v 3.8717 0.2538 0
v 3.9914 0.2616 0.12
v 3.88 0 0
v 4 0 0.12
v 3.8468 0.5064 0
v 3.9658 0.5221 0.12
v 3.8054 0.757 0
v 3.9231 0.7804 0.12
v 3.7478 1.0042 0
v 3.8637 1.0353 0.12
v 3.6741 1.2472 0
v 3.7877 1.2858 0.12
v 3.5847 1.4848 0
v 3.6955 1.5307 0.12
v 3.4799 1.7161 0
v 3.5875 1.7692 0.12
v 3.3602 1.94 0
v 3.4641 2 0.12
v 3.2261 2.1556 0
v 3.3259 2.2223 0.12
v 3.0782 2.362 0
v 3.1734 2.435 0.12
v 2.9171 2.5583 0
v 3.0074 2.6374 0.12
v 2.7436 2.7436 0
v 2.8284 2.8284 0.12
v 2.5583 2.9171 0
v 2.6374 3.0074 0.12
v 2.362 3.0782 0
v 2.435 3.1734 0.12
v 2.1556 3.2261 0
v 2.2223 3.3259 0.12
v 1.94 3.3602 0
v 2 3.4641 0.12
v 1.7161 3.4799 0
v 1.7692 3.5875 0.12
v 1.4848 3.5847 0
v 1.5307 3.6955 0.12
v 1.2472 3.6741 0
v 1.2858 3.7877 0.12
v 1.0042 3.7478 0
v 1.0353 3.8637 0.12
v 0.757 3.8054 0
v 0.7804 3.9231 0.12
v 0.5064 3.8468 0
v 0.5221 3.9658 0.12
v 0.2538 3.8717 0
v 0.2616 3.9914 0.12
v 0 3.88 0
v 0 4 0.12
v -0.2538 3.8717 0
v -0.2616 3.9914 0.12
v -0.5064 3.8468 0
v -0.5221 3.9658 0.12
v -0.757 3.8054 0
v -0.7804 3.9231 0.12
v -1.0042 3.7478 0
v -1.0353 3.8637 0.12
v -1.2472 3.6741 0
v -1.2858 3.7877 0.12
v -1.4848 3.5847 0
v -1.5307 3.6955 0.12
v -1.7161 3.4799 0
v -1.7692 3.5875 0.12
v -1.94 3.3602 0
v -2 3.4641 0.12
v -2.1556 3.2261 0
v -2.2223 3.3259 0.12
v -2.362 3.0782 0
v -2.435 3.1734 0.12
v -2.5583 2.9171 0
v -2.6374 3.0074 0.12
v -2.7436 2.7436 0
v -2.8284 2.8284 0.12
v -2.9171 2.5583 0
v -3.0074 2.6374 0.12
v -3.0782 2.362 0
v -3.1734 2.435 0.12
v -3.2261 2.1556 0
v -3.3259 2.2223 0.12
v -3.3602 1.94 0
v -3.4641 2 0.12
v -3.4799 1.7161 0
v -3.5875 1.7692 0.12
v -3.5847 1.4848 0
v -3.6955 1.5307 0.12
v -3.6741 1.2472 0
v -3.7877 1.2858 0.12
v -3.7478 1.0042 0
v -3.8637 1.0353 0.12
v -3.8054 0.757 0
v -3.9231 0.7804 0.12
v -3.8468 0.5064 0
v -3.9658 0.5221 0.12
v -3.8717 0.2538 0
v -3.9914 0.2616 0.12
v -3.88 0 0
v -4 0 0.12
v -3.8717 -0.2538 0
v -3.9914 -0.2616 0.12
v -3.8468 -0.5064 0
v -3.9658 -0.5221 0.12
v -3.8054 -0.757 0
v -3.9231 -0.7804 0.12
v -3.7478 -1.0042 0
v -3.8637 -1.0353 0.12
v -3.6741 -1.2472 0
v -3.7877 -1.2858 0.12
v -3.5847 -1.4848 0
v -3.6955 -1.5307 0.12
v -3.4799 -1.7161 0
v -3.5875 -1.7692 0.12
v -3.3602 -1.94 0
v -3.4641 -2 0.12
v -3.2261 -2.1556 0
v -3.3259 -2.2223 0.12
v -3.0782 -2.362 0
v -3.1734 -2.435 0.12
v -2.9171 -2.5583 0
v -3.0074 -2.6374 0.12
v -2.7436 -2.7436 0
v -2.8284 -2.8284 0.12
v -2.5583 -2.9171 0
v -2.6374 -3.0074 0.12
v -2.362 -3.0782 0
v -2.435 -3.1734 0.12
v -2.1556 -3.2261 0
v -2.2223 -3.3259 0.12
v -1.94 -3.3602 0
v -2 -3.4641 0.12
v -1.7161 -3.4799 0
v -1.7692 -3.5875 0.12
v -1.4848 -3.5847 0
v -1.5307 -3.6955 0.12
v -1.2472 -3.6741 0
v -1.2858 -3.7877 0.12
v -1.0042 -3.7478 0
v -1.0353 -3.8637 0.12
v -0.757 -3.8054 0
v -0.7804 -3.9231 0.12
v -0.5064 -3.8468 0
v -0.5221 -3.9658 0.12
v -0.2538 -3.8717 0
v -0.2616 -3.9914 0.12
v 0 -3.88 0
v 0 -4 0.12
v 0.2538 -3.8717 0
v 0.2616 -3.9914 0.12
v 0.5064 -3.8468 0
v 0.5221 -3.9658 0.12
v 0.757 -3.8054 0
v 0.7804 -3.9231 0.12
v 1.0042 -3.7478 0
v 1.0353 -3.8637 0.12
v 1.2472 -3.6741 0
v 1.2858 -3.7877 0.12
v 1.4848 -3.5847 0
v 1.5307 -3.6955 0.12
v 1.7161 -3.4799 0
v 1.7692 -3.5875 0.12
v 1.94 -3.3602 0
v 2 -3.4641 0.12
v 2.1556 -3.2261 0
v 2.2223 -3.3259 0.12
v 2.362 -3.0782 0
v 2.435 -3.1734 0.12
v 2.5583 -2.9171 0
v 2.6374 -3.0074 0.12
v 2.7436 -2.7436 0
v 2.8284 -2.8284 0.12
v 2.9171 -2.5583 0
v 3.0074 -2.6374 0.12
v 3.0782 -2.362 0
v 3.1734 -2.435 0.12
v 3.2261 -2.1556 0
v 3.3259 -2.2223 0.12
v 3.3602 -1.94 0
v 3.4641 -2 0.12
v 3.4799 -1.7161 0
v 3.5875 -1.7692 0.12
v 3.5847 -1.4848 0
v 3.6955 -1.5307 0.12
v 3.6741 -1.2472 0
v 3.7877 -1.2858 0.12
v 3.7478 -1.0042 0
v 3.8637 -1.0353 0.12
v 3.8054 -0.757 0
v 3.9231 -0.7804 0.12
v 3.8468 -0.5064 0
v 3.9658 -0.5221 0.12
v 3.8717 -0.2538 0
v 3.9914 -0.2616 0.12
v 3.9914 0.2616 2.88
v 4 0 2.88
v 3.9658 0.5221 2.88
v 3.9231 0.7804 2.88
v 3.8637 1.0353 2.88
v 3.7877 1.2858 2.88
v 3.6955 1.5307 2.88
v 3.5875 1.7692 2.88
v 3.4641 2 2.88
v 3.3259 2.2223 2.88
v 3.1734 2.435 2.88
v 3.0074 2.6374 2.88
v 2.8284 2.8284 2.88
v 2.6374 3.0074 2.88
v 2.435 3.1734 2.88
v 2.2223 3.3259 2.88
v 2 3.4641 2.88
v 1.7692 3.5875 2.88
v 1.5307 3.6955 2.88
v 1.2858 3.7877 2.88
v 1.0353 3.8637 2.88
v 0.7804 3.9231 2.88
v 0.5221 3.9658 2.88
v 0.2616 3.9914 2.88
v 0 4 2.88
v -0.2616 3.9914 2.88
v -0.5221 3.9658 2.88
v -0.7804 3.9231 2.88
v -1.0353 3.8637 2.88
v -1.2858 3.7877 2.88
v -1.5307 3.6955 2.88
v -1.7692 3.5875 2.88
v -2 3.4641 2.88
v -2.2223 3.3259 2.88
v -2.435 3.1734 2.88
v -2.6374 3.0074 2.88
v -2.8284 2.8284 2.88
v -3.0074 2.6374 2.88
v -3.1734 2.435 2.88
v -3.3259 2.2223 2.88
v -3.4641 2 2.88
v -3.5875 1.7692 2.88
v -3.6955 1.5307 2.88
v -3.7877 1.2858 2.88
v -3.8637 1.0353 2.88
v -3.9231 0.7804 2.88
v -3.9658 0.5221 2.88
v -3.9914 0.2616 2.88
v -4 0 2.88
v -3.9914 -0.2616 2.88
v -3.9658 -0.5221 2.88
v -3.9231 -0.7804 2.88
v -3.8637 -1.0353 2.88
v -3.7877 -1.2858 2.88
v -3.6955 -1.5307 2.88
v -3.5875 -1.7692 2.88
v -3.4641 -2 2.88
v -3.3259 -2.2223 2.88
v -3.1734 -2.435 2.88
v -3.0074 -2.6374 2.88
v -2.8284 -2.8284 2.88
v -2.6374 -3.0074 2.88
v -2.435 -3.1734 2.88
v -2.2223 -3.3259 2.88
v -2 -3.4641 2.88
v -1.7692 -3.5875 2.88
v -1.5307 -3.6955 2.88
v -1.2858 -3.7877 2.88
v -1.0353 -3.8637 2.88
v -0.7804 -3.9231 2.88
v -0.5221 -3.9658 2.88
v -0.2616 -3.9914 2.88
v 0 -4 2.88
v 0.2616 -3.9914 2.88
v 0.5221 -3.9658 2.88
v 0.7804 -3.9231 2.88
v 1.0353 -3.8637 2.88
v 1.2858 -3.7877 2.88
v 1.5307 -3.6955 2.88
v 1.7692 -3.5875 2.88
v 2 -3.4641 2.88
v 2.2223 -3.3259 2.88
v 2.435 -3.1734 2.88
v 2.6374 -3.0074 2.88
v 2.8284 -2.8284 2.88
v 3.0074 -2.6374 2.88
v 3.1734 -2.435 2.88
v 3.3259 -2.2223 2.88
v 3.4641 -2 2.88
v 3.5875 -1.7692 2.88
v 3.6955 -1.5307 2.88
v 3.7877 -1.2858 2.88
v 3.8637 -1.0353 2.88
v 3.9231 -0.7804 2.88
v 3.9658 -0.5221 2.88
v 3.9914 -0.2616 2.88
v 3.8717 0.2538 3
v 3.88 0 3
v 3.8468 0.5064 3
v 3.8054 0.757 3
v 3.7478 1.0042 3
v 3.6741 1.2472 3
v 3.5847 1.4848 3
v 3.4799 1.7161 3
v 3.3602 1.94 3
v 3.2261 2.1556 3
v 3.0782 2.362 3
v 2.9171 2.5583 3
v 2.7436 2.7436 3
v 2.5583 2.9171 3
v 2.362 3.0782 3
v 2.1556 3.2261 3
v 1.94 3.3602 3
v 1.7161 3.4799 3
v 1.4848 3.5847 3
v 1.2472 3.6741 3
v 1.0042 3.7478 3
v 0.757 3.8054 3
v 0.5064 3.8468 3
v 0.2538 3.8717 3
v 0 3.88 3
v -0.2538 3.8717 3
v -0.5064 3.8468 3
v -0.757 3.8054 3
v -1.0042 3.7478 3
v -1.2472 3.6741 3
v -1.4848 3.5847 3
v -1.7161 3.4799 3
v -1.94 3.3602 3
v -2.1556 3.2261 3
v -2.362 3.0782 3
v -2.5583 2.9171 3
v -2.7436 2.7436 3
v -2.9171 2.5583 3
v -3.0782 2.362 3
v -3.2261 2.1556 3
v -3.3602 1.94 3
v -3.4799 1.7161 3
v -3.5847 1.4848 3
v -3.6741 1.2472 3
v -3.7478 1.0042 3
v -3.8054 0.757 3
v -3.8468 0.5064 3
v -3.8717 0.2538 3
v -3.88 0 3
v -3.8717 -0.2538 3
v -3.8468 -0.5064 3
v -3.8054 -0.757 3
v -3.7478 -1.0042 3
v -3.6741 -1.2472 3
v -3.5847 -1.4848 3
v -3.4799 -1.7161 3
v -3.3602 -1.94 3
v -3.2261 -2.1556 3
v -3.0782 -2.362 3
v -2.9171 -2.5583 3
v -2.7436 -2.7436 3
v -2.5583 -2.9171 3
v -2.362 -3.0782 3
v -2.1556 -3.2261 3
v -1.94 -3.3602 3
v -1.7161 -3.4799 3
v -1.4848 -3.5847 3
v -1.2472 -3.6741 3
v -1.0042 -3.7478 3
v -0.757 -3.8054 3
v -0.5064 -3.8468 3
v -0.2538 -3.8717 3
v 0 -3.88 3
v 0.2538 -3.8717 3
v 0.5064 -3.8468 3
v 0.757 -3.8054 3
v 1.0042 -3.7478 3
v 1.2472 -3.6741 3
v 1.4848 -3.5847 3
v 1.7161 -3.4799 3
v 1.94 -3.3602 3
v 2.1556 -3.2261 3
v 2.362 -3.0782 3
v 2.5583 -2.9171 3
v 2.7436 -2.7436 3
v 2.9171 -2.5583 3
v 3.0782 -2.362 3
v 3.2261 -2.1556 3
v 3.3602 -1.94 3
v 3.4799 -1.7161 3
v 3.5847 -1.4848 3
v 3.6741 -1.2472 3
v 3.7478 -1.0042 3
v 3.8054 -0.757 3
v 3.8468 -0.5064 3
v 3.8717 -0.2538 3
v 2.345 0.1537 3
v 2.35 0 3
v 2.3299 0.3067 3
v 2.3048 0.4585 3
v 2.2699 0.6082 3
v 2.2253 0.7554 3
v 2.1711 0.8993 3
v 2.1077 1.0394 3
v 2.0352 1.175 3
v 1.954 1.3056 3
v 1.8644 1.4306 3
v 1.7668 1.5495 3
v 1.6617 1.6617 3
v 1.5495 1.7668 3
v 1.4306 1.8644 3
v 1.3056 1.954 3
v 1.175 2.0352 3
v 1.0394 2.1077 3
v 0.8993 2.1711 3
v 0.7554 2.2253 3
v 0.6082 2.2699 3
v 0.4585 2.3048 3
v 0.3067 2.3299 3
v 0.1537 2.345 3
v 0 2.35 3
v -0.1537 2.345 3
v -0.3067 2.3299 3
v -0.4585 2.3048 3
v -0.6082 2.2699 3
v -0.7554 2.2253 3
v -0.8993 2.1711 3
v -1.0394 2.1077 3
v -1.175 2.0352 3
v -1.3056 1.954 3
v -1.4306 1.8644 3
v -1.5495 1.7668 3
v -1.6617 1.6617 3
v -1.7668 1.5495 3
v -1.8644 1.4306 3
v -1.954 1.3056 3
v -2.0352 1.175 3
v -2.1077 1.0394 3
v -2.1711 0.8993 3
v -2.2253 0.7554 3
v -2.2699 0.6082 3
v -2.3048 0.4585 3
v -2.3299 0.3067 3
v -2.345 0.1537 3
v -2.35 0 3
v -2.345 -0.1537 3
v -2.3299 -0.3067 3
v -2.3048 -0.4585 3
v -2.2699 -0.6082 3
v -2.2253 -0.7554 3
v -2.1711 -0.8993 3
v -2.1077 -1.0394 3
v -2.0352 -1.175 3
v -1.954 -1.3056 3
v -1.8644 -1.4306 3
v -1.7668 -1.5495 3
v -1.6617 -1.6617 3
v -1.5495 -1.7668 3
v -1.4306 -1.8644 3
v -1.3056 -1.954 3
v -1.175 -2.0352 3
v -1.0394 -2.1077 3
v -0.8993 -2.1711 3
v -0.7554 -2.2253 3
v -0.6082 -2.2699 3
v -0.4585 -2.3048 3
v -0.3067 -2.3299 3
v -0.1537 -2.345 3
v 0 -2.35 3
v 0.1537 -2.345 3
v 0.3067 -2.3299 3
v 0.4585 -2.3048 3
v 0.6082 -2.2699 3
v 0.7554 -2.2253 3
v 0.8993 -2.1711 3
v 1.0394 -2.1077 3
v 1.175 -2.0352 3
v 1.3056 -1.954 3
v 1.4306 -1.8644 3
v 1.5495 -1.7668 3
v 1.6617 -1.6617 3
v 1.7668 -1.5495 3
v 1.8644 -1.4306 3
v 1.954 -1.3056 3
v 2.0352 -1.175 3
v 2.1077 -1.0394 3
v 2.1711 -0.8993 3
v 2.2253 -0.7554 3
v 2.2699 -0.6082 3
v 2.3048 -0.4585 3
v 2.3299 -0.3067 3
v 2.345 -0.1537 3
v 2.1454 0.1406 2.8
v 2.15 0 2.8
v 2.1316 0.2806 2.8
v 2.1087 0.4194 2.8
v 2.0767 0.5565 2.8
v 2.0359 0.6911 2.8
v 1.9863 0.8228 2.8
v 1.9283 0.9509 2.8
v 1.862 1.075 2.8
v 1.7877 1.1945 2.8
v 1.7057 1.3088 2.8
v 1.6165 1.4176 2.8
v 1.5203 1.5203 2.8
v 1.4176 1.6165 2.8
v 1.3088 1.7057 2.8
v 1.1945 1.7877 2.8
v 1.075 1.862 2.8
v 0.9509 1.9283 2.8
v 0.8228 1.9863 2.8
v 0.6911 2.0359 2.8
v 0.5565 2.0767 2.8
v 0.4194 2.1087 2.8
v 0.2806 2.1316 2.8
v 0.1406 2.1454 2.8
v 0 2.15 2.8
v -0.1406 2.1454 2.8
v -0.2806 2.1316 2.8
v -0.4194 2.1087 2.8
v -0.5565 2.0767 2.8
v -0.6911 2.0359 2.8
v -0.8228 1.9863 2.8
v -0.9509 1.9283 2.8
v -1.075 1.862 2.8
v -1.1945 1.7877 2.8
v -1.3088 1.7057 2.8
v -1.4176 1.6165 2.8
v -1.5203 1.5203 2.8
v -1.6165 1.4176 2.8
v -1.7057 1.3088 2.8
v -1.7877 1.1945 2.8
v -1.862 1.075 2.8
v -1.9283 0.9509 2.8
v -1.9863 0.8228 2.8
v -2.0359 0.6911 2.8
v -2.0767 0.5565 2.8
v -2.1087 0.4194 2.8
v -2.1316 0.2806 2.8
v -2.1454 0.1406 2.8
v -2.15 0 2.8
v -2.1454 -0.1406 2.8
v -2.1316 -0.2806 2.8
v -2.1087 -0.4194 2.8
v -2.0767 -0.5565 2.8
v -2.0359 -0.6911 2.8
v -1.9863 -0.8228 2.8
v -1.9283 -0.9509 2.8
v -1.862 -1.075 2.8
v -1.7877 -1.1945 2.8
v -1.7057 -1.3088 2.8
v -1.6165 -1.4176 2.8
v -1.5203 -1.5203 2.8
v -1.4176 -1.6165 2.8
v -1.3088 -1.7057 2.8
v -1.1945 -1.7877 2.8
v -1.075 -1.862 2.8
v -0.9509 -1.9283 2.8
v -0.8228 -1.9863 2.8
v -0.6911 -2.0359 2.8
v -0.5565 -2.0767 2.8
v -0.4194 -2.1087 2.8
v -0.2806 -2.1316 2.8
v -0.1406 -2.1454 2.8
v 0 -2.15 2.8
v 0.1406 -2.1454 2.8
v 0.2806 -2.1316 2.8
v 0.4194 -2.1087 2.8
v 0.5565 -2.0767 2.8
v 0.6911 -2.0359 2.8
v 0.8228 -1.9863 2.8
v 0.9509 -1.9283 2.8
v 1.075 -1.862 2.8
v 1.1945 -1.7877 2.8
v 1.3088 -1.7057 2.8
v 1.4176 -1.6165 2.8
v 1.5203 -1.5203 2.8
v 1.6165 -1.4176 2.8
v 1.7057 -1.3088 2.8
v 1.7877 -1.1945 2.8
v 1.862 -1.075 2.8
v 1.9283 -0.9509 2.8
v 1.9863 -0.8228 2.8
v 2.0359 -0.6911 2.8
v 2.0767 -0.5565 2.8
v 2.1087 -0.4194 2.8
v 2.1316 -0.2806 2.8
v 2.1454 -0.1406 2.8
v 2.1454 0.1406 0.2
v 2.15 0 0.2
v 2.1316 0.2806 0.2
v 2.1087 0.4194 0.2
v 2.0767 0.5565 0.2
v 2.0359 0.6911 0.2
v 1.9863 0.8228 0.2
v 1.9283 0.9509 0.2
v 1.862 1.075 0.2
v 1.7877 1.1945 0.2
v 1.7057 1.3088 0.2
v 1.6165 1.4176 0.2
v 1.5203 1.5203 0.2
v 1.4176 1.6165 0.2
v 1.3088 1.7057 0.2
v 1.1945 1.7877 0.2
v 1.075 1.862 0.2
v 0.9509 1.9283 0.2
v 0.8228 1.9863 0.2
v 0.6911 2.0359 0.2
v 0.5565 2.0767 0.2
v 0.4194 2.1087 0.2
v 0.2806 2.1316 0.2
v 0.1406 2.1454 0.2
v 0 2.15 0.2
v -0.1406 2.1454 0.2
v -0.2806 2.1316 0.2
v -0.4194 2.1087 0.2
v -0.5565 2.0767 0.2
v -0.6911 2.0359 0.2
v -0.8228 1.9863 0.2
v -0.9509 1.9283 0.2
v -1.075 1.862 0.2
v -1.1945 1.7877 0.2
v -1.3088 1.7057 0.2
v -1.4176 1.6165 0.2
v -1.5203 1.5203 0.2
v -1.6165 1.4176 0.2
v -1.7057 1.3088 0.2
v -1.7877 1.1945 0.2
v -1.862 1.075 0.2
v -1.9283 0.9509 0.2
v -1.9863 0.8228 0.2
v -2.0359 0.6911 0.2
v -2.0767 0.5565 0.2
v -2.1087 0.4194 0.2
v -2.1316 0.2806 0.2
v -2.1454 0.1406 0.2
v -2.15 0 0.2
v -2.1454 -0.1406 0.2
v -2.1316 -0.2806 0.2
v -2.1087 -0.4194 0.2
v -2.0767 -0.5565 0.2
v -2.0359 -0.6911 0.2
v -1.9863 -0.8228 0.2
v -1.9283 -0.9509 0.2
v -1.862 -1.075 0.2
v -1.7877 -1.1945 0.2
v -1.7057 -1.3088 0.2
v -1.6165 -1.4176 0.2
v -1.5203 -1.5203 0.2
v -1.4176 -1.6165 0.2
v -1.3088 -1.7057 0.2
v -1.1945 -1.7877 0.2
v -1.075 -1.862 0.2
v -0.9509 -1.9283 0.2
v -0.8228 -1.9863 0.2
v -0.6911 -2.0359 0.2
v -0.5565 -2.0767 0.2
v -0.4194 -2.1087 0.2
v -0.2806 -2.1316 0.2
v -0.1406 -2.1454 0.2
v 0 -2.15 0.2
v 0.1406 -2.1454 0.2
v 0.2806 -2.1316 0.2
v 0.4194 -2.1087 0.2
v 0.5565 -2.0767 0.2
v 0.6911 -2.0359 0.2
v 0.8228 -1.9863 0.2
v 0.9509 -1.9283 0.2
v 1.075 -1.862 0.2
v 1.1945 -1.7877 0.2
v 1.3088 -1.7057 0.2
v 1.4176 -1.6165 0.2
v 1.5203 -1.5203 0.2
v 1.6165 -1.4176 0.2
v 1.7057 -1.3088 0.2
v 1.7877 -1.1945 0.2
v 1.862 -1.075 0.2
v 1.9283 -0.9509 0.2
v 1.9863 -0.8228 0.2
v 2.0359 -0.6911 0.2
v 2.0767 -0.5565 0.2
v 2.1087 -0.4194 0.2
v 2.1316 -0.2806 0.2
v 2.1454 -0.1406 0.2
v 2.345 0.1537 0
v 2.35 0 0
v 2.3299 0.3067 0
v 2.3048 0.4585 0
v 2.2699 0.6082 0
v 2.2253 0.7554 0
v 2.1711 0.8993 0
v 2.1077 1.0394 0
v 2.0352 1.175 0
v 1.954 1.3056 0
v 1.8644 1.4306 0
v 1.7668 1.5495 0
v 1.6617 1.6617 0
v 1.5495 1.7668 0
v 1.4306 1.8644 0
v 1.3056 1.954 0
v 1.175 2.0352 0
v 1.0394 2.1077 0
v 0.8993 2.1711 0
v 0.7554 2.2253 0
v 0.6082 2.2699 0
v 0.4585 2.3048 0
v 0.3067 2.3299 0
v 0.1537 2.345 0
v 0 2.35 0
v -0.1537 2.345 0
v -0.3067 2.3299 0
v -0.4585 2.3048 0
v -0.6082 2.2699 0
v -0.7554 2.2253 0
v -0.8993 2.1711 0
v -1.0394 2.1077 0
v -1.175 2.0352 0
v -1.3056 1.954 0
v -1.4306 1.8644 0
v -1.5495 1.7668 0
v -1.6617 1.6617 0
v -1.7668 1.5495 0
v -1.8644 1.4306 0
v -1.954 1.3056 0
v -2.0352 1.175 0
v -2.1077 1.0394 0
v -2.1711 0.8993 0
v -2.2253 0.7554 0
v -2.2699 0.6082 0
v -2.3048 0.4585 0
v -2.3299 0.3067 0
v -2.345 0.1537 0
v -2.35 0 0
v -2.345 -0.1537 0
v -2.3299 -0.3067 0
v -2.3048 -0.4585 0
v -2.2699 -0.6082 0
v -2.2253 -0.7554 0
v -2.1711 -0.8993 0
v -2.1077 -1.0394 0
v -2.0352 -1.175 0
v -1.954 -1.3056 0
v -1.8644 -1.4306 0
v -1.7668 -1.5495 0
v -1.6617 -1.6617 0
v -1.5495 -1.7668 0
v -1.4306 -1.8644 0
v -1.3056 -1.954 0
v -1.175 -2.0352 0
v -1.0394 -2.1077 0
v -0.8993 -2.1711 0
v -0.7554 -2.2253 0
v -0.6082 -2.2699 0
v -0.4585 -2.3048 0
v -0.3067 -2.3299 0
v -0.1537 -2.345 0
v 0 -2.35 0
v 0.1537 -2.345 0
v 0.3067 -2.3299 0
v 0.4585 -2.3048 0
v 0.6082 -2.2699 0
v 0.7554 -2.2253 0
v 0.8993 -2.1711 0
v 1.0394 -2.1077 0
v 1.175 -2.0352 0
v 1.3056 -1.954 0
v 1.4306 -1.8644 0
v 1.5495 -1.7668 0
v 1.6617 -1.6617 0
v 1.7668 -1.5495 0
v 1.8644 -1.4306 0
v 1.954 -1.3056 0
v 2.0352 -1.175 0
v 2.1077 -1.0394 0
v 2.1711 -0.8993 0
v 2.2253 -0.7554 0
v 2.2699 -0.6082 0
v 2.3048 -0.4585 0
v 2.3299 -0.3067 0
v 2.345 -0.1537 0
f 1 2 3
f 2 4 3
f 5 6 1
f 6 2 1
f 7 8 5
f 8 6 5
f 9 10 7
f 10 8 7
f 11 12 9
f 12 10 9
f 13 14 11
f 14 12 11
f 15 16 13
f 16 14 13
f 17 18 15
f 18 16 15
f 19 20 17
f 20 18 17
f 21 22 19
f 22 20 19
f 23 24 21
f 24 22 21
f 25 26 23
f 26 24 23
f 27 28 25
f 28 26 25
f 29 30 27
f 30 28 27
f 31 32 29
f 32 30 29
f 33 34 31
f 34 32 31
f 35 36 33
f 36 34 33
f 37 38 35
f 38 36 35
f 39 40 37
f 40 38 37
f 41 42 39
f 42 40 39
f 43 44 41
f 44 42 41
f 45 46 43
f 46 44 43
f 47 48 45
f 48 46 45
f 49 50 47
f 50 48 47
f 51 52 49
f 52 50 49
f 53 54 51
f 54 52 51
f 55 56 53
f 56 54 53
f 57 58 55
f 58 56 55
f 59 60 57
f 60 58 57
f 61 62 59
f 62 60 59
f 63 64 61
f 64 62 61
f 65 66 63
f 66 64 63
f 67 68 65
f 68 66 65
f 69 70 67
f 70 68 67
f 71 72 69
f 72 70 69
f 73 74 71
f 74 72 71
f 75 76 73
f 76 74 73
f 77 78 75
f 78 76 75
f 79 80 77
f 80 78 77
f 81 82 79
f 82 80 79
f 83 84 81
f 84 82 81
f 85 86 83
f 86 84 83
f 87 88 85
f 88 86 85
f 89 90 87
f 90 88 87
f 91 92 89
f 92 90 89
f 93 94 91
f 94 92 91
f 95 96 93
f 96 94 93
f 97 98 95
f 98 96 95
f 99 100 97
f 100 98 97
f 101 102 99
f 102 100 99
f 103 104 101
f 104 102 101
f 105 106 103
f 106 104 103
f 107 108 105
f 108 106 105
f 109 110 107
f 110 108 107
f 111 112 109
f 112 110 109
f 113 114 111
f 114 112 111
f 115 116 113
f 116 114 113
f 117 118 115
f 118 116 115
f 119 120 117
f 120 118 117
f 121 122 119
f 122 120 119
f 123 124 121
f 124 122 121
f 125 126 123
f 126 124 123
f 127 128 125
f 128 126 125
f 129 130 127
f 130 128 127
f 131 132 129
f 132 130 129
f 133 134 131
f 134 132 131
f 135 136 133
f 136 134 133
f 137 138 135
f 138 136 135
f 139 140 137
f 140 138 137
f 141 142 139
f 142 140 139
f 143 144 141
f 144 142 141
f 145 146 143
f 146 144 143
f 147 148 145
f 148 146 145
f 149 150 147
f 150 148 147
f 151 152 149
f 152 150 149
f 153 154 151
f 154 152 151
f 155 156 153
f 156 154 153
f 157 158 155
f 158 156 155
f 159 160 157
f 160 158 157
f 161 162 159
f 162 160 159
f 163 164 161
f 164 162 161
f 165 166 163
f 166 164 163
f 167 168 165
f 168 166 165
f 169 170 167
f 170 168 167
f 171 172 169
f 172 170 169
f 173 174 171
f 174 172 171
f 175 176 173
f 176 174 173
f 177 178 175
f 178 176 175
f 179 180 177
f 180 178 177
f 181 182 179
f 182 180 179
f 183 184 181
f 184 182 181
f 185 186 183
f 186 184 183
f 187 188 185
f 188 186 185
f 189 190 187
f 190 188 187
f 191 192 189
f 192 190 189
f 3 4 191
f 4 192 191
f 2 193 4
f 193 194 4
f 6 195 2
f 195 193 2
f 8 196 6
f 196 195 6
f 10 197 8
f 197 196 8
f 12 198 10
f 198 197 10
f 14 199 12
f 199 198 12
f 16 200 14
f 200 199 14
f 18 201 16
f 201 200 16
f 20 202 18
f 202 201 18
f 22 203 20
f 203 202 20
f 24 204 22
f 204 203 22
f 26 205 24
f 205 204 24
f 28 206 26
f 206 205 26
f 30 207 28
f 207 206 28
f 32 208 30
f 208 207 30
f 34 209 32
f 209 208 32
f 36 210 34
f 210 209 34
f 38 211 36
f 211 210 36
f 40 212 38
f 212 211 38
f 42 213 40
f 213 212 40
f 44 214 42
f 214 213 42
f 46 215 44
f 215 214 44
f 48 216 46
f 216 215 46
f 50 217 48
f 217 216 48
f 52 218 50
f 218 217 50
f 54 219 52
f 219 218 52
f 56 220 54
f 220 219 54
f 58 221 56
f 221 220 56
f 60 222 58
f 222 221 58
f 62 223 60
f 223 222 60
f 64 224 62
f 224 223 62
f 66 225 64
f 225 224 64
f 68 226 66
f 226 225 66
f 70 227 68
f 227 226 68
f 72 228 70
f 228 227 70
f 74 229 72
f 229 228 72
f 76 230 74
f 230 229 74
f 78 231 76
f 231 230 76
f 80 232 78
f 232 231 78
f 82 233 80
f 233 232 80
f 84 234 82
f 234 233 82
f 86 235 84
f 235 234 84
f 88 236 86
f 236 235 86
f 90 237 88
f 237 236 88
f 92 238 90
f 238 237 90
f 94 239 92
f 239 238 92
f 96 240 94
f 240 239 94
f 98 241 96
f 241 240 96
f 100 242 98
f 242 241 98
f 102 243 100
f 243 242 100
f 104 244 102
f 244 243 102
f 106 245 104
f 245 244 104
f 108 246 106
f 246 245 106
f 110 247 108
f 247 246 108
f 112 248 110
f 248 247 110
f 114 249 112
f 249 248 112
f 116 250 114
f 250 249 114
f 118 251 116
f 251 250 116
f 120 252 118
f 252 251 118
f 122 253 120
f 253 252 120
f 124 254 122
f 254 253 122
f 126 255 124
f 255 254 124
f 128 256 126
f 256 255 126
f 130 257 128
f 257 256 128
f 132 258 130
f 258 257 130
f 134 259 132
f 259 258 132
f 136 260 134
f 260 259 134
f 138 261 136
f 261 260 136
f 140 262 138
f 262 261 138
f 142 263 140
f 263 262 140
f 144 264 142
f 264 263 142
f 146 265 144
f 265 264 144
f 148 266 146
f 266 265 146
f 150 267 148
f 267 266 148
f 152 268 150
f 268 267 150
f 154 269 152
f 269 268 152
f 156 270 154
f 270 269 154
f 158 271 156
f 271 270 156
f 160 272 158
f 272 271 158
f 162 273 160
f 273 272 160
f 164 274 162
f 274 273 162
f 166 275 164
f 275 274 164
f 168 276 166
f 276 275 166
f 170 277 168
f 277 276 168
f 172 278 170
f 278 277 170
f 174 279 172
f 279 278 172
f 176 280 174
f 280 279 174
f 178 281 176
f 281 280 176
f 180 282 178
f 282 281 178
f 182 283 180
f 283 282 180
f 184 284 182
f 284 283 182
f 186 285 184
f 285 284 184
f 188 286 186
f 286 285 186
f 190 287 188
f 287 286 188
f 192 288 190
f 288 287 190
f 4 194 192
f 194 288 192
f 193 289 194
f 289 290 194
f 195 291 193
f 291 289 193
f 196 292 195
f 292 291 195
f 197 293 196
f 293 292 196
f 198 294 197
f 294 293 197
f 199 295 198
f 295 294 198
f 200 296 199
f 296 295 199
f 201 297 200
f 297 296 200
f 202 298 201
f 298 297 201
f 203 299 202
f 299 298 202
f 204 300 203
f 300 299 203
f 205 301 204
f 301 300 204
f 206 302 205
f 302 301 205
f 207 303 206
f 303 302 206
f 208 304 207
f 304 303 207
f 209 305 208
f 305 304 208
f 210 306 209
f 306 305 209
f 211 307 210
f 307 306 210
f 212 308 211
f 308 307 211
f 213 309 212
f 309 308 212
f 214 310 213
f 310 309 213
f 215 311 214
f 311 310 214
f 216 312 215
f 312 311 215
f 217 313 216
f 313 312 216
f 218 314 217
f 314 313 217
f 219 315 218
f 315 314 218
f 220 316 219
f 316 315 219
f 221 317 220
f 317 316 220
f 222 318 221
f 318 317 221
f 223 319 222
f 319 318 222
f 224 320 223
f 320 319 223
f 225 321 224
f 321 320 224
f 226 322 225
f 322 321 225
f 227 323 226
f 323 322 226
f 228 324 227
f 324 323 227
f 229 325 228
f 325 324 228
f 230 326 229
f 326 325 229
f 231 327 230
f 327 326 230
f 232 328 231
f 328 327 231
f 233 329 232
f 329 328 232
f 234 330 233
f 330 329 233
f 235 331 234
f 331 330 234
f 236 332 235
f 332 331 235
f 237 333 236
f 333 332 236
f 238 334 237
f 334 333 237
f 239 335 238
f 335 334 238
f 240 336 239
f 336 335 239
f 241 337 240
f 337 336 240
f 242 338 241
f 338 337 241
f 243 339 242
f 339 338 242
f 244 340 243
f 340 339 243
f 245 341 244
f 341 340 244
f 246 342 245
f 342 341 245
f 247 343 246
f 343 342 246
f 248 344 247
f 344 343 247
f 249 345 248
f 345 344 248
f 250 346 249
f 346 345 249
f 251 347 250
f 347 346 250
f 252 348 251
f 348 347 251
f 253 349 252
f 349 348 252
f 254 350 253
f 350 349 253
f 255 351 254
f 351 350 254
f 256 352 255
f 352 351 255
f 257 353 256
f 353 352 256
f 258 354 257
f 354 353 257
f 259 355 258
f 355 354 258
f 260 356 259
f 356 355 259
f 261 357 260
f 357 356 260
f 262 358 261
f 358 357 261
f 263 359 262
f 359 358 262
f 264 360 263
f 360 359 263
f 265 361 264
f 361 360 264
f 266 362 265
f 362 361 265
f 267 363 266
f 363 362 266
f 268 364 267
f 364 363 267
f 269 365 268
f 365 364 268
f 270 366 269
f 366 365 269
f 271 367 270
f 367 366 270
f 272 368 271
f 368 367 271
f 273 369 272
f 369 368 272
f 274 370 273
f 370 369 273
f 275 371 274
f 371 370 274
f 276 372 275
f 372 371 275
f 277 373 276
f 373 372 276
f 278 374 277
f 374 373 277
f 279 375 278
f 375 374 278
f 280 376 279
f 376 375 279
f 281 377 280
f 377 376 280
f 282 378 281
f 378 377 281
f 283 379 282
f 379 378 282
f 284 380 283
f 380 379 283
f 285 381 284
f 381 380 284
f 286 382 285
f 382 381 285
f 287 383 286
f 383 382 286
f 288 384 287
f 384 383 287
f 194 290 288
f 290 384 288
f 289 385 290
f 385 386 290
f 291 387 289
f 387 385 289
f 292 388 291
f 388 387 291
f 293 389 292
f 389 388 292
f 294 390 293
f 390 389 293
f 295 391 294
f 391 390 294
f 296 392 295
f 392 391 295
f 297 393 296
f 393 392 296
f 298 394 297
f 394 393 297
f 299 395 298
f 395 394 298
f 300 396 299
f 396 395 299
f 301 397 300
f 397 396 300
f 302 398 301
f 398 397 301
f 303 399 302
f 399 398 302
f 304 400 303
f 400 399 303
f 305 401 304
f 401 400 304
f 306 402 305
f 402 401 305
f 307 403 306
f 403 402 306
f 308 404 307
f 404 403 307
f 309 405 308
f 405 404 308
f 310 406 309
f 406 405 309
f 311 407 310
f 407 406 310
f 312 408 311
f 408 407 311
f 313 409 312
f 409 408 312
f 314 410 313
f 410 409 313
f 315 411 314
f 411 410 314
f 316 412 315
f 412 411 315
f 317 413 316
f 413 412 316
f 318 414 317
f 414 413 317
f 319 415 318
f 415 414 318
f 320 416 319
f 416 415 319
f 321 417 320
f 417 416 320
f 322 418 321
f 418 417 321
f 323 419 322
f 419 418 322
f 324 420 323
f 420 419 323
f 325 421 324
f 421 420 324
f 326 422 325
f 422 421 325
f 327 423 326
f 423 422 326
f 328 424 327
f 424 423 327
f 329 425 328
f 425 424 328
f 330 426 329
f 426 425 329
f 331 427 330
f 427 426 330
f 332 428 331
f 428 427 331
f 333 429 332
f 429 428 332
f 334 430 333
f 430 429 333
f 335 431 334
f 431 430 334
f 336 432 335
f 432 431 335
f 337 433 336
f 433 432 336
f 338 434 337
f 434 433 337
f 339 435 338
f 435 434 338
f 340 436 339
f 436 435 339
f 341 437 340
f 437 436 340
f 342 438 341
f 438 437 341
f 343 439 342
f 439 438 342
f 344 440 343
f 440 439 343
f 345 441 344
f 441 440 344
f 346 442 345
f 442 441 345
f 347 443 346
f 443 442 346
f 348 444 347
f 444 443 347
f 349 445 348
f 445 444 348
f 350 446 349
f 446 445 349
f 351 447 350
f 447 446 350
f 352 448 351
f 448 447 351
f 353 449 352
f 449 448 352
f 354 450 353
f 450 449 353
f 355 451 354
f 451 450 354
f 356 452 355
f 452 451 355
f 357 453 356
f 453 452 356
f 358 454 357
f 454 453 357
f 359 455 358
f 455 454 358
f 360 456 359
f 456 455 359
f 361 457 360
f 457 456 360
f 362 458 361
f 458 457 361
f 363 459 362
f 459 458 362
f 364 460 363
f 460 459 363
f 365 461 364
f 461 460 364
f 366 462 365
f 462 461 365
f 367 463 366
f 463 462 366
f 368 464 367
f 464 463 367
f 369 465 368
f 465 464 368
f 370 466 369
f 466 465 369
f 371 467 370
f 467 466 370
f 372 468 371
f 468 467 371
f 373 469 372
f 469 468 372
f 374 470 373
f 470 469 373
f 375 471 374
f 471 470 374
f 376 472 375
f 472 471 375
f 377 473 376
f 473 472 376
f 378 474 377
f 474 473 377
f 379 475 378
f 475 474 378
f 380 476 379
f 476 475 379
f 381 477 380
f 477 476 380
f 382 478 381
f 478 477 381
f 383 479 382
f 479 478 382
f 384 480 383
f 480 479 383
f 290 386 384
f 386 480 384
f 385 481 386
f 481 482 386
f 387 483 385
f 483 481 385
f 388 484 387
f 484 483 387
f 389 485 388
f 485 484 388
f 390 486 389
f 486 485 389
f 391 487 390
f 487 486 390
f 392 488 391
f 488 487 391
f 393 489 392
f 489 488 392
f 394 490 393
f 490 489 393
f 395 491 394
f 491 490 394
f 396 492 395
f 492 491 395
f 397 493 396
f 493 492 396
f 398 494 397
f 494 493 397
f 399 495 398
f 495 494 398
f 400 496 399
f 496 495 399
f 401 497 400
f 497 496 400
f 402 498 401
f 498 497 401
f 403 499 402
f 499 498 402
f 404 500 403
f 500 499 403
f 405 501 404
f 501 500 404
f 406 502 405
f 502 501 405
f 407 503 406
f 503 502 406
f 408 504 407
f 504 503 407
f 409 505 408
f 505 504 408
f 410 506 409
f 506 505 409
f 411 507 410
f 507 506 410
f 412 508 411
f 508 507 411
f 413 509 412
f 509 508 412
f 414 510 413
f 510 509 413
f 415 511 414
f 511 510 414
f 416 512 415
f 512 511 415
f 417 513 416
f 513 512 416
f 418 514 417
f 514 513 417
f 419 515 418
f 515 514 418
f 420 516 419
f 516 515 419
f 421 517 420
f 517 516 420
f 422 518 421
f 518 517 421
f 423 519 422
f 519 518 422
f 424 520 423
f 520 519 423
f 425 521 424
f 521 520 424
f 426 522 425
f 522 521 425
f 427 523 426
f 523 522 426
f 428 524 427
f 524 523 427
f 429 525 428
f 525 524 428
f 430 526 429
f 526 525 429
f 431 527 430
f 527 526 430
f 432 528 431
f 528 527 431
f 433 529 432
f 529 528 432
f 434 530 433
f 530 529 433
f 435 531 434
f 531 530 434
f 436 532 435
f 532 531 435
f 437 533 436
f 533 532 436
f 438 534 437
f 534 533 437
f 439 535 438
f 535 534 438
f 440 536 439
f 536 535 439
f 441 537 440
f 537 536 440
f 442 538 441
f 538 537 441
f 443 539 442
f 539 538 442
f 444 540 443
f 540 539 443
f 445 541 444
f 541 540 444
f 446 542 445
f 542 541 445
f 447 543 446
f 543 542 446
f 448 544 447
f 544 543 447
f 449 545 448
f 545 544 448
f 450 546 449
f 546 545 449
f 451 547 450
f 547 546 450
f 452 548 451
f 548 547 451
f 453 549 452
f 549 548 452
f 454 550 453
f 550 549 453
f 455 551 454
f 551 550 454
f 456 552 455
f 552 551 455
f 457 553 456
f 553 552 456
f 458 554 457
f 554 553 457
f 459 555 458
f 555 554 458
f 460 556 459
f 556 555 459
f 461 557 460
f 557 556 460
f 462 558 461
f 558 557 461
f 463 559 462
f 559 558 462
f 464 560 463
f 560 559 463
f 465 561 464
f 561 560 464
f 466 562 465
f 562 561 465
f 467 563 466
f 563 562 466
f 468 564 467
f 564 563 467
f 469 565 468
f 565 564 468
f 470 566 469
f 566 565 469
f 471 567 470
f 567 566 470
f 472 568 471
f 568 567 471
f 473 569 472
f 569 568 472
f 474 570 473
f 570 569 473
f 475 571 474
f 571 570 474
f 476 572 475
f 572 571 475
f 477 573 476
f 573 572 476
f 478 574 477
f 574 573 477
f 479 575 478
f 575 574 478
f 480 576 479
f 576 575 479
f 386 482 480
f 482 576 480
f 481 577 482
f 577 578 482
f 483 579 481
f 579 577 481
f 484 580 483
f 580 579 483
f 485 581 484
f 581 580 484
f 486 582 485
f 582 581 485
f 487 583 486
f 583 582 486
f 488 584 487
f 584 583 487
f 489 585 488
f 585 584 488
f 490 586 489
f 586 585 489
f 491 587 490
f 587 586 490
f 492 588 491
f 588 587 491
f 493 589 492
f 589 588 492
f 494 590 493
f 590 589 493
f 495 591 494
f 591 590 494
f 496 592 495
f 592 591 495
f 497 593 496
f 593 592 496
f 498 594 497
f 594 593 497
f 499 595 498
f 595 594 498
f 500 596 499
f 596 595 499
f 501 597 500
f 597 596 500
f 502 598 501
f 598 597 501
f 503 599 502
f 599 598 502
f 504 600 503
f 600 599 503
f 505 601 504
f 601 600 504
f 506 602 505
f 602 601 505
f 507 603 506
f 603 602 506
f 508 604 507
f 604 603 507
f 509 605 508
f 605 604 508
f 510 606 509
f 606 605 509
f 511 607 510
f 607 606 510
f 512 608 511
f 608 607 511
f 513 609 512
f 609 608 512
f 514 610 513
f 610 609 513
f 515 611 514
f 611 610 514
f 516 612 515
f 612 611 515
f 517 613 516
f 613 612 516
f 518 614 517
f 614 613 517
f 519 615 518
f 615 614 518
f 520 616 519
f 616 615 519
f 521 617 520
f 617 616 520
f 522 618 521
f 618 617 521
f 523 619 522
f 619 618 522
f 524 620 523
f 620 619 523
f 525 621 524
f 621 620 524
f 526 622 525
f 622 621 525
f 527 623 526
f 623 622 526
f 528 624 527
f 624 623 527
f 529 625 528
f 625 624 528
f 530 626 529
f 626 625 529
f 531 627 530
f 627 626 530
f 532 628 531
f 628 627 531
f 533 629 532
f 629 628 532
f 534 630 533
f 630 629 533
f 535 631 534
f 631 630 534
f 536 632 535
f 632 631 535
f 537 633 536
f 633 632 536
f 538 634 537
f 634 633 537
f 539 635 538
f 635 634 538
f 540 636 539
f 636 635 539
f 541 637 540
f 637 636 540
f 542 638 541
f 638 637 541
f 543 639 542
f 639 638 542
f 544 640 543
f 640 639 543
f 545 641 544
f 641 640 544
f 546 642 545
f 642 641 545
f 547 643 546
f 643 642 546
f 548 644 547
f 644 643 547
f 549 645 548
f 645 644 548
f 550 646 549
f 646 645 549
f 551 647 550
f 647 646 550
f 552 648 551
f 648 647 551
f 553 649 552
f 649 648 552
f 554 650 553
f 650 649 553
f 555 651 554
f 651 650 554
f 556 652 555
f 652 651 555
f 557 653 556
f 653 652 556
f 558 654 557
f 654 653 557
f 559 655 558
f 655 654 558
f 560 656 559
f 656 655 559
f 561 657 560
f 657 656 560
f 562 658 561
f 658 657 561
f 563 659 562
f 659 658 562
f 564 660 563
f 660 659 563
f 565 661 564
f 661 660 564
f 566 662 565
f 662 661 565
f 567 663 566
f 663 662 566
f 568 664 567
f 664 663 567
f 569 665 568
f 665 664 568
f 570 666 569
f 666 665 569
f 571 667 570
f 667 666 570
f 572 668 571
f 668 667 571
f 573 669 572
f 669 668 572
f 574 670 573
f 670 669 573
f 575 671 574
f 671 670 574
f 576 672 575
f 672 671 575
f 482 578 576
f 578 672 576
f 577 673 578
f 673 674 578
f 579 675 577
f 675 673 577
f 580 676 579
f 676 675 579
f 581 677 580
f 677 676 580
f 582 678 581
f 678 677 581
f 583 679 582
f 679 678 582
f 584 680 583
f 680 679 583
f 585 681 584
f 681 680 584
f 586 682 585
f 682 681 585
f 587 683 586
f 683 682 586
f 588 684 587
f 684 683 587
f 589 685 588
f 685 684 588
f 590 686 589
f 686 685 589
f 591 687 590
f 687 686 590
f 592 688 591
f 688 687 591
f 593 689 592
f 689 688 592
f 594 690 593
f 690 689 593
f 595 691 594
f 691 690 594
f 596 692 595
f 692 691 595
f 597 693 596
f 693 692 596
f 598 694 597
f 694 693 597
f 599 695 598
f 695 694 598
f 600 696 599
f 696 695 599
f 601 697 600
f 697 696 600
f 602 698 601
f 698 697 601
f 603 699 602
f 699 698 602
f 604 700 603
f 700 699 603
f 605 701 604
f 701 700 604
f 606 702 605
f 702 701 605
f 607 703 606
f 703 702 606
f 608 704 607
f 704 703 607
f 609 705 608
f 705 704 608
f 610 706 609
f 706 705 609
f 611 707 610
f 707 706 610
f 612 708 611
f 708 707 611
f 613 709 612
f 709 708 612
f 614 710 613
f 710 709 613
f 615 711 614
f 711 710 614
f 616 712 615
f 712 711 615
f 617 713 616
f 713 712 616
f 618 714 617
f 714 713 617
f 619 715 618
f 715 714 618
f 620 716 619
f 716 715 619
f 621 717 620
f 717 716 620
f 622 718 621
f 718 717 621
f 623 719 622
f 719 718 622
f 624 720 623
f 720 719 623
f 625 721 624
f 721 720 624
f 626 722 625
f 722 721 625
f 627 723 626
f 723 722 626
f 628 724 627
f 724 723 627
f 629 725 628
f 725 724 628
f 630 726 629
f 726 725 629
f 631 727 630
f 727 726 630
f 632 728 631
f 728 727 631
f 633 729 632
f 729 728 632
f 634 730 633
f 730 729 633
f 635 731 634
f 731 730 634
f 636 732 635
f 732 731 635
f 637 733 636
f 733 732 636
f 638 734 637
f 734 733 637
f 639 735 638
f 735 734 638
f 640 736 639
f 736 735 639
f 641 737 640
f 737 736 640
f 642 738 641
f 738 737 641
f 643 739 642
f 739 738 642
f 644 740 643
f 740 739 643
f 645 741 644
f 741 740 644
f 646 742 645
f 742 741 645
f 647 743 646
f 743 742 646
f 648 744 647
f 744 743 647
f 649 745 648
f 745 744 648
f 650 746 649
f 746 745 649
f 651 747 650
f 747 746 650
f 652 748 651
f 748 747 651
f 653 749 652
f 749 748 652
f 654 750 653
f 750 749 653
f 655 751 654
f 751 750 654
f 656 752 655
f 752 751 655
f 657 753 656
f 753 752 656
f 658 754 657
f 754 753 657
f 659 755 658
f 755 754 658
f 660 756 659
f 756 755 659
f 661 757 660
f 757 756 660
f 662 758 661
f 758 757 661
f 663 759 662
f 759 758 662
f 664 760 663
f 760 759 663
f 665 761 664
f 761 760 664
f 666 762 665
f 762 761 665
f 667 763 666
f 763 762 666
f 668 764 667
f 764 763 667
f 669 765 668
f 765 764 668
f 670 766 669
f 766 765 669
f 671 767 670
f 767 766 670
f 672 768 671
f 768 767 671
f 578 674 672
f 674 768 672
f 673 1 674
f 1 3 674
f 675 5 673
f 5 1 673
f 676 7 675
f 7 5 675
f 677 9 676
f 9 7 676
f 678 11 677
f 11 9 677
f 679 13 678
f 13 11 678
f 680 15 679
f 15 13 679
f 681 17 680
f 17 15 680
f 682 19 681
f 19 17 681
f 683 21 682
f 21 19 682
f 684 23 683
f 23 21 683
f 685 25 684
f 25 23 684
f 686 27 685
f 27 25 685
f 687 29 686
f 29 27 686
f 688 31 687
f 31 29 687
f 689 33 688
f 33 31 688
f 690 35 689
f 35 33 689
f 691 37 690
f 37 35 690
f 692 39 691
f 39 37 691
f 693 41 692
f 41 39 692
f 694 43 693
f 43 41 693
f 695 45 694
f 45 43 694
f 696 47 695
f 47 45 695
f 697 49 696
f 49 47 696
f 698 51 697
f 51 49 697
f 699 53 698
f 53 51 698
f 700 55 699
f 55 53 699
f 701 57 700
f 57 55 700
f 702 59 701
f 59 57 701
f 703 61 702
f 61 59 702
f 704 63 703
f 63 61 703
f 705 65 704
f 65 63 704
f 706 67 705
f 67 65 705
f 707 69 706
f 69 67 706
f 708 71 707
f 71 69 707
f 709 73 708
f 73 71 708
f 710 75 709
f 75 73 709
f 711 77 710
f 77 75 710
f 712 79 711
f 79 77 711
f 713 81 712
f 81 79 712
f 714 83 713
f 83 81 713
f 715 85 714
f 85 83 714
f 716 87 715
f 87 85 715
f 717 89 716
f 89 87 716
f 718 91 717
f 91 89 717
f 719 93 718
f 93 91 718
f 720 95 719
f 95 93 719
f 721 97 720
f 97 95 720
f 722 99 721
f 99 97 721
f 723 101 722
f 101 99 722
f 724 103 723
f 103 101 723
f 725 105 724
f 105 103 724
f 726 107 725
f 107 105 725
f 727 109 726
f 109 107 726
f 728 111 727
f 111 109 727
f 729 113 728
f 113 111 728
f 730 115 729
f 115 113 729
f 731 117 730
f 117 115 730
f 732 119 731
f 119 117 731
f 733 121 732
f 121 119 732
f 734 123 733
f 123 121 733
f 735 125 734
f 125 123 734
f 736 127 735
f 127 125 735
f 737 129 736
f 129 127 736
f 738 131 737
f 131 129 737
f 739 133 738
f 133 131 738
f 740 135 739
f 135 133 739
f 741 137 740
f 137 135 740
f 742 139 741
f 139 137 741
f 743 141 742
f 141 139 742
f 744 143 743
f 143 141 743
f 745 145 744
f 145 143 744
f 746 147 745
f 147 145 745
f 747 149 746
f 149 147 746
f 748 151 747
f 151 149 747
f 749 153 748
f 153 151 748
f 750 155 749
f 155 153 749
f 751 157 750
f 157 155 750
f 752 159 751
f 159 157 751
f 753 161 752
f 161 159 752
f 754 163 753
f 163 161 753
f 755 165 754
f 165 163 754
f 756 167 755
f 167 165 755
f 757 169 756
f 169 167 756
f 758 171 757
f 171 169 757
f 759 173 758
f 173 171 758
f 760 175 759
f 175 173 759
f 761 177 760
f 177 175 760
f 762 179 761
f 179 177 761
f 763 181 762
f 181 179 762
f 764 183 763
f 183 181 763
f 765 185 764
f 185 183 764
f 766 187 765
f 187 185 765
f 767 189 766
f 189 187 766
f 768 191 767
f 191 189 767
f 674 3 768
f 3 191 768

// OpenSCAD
// OOMP generic catalogue model; units: mm.
// Stud length is additional to body depth. Tapping depths are model assumptions.
variant = "full"; // [full, display]
family = "spacer";
connection_type = "plain";
depth_mm = 3;
stud_length_mm = 0;
tapped_depth_mm = 0;
bore_mm = 4.3;
outer_diameter_mm = 8;
across_flats_mm = 6;
thread_nominal_diameter_mm = 3;
thread_pitch_mm = 0.5;
edge_chamfer_mm = 0.12;
mouth_chamfer_mm = 0.2;
angular_segments = 96;
samples_per_pitch = 16;

// Boundary travels up the outside, then down any tapped/plain bore.
// Equal-height rings at shoulders form the annular shoulder faces.
n = angular_segments;
threaded = family == "standoff";
has_stud = connection_type == "stud_to_tapped" || connection_type == "stud_to_stud";
two_studs = connection_type == "stud_to_stud";
through = !threaded || connection_type == "tapped_to_tapped";
pitch = thread_pitch_mm;
diameter = threaded ? thread_nominal_diameter_mm : bore_mm;
minor = diameter - 5*sqrt(3)*pitch/8;
transition = mouth_chamfer_mm + (threaded ? 5*sqrt(3)*pitch/16 : 0);
tip_chamfer = mouth_chamfer_mm + 17*sqrt(3)*pitch/48;
function sorted(v) = len(v)<=1 ? v : let(p=v[0])
    concat(sorted([for(x=v) if(x<p-1e-8) x]), [p], sorted([for(x=v) if(x>p+1e-8) x]));
function reverse(v) = [for(i=[len(v)-1:-1:0]) v[i]];
function theta(i) = i*360/n;
function fract(x) = x-floor(x);
function phase_distance(i,z) = abs(fract(z/pitch-theta(i)/360+0.5)-0.5);
function thread_r(i,z) = minor/2 + min(5*sqrt(3)*pitch/16,
    max(0,(phase_distance(i,z)-0.125)*pitch*sqrt(3)));
function stud_r(i,z,tip) = min(diameter/2 - (variant=="full" ?
    min(17*sqrt(3)*pitch/48,max(0,(phase_distance(i,z)-0.0625)*pitch*sqrt(3))) : 0),
    diameter/2-tip_chamfer+abs(z-tip));
function body_r(i,z) = (threaded ? across_flats_mm/2/cos(theta(i)%60-30) : outer_diameter_mm/2)
    - max(0,edge_chamfer_mm-min(z,depth_mm-z));
function bore_r(i,z) = max(threaded ? (variant=="full" ? thread_r(i,z) : minor/2) : diameter/2,
    diameter/2+mouth_chamfer_mm-(through ? min(z,depth_mm-z) : depth_mm-z));
function stud_z(a,b,tip) = let(count=variant=="full" ? ceil(stud_length_mm/pitch*samples_per_pitch) : 1)
    sorted(concat([for(i=[0:count]) a+(b-a)*i/count], [tip==a ? tip+tip_chamfer : tip-tip_chamfer]));
body_z = sorted([0,edge_chamfer_mm,depth_mm-edge_chamfer_mm,depth_mm]);
low = through ? 0 : depth_mm-tapped_depth_mm;
count = threaded && variant=="full" ? ceil((depth_mm-low)/pitch*samples_per_pitch) : 1;
bore_z = two_studs ? [] : reverse(sorted(concat(
    [for(i=[0:count]) low+(depth_mm-low)*i/count],
    [depth_mm-mouth_chamfer_mm,depth_mm-transition],
    through ? [mouth_chamfer_mm,transition] : [])));
// Ring descriptors: [height, kind, tip]. Kind: 0 body, 1 stud, 2 bore.
rings = concat(
    has_stud ? [for(z=stud_z(-stud_length_mm,0,-stud_length_mm)) [z,1,-stud_length_mm]] : [],
    [for(z=body_z) [z,0,0]],
    two_studs ? [for(z=stud_z(depth_mm,depth_mm+stud_length_mm,depth_mm+stud_length_mm)) [z,1,depth_mm+stud_length_mm]] : [],
    [for(z=bore_z) [z,2,0]]);
function radius(i,ring) = ring[1]==0 ? body_r(i,ring[0]) :
    ring[1]==1 ? stud_r(i,ring[0],ring[2]) : bore_r(i,ring[0]);
points = concat([for(ring=rings) for(i=[0:n-1])
    [radius(i,ring)*cos(theta(i)),radius(i,ring)*sin(theta(i)),ring[0]]],
    through ? [] : [[0,0,rings[0][0]],[0,0,rings[len(rings)-1][0]]]);
center = len(rings)*n;
last = (len(rings)-1)*n;
// OpenSCAD winding is opposite to STL winding.
faces = concat(
    [for(j=[0:len(rings)-(through ? 1 : 2)]) for(i=[0:n-1]) each
        let(a=j*n+i,b=j*n+(i+1)%n,c=((j+1)%len(rings))*n+(i+1)%n,d=((j+1)%len(rings))*n+i)
        [[a,c,b],[a,d,c]]],
    through ? [] : [for(i=[0:n-1]) each let(k=(i+1)%n)
        [[center,i,k],[center+1,last+k,last+i]]]);
assert(family=="spacer" || family=="standoff");
assert(!threaded || connection_type=="tapped_to_tapped" || has_stud);
assert(depth_mm>0 && diameter>0 && pitch>0);
assert(variant=="full" || variant=="display");
assert(n>=24 && n%12==0 && samples_per_pitch>=8);
assert(mouth_chamfer_mm>0 && mouth_chamfer_mm<depth_mm/2);
assert(edge_chamfer_mm>=0 && edge_chamfer_mm<depth_mm/2);
assert(diameter+4*max(mouth_chamfer_mm,edge_chamfer_mm) < (threaded ? across_flats_mm : outer_diameter_mm));
assert(!has_stud || stud_length_mm>2*mouth_chamfer_mm);
assert(!through || !threaded || 2*transition<depth_mm);
assert(connection_type!="stud_to_tapped" || (tapped_depth_mm>transition && tapped_depth_mm<depth_mm));
color([0.86,0.85,0.81]) polyhedron(points=points,faces=faces,convexity=20);
